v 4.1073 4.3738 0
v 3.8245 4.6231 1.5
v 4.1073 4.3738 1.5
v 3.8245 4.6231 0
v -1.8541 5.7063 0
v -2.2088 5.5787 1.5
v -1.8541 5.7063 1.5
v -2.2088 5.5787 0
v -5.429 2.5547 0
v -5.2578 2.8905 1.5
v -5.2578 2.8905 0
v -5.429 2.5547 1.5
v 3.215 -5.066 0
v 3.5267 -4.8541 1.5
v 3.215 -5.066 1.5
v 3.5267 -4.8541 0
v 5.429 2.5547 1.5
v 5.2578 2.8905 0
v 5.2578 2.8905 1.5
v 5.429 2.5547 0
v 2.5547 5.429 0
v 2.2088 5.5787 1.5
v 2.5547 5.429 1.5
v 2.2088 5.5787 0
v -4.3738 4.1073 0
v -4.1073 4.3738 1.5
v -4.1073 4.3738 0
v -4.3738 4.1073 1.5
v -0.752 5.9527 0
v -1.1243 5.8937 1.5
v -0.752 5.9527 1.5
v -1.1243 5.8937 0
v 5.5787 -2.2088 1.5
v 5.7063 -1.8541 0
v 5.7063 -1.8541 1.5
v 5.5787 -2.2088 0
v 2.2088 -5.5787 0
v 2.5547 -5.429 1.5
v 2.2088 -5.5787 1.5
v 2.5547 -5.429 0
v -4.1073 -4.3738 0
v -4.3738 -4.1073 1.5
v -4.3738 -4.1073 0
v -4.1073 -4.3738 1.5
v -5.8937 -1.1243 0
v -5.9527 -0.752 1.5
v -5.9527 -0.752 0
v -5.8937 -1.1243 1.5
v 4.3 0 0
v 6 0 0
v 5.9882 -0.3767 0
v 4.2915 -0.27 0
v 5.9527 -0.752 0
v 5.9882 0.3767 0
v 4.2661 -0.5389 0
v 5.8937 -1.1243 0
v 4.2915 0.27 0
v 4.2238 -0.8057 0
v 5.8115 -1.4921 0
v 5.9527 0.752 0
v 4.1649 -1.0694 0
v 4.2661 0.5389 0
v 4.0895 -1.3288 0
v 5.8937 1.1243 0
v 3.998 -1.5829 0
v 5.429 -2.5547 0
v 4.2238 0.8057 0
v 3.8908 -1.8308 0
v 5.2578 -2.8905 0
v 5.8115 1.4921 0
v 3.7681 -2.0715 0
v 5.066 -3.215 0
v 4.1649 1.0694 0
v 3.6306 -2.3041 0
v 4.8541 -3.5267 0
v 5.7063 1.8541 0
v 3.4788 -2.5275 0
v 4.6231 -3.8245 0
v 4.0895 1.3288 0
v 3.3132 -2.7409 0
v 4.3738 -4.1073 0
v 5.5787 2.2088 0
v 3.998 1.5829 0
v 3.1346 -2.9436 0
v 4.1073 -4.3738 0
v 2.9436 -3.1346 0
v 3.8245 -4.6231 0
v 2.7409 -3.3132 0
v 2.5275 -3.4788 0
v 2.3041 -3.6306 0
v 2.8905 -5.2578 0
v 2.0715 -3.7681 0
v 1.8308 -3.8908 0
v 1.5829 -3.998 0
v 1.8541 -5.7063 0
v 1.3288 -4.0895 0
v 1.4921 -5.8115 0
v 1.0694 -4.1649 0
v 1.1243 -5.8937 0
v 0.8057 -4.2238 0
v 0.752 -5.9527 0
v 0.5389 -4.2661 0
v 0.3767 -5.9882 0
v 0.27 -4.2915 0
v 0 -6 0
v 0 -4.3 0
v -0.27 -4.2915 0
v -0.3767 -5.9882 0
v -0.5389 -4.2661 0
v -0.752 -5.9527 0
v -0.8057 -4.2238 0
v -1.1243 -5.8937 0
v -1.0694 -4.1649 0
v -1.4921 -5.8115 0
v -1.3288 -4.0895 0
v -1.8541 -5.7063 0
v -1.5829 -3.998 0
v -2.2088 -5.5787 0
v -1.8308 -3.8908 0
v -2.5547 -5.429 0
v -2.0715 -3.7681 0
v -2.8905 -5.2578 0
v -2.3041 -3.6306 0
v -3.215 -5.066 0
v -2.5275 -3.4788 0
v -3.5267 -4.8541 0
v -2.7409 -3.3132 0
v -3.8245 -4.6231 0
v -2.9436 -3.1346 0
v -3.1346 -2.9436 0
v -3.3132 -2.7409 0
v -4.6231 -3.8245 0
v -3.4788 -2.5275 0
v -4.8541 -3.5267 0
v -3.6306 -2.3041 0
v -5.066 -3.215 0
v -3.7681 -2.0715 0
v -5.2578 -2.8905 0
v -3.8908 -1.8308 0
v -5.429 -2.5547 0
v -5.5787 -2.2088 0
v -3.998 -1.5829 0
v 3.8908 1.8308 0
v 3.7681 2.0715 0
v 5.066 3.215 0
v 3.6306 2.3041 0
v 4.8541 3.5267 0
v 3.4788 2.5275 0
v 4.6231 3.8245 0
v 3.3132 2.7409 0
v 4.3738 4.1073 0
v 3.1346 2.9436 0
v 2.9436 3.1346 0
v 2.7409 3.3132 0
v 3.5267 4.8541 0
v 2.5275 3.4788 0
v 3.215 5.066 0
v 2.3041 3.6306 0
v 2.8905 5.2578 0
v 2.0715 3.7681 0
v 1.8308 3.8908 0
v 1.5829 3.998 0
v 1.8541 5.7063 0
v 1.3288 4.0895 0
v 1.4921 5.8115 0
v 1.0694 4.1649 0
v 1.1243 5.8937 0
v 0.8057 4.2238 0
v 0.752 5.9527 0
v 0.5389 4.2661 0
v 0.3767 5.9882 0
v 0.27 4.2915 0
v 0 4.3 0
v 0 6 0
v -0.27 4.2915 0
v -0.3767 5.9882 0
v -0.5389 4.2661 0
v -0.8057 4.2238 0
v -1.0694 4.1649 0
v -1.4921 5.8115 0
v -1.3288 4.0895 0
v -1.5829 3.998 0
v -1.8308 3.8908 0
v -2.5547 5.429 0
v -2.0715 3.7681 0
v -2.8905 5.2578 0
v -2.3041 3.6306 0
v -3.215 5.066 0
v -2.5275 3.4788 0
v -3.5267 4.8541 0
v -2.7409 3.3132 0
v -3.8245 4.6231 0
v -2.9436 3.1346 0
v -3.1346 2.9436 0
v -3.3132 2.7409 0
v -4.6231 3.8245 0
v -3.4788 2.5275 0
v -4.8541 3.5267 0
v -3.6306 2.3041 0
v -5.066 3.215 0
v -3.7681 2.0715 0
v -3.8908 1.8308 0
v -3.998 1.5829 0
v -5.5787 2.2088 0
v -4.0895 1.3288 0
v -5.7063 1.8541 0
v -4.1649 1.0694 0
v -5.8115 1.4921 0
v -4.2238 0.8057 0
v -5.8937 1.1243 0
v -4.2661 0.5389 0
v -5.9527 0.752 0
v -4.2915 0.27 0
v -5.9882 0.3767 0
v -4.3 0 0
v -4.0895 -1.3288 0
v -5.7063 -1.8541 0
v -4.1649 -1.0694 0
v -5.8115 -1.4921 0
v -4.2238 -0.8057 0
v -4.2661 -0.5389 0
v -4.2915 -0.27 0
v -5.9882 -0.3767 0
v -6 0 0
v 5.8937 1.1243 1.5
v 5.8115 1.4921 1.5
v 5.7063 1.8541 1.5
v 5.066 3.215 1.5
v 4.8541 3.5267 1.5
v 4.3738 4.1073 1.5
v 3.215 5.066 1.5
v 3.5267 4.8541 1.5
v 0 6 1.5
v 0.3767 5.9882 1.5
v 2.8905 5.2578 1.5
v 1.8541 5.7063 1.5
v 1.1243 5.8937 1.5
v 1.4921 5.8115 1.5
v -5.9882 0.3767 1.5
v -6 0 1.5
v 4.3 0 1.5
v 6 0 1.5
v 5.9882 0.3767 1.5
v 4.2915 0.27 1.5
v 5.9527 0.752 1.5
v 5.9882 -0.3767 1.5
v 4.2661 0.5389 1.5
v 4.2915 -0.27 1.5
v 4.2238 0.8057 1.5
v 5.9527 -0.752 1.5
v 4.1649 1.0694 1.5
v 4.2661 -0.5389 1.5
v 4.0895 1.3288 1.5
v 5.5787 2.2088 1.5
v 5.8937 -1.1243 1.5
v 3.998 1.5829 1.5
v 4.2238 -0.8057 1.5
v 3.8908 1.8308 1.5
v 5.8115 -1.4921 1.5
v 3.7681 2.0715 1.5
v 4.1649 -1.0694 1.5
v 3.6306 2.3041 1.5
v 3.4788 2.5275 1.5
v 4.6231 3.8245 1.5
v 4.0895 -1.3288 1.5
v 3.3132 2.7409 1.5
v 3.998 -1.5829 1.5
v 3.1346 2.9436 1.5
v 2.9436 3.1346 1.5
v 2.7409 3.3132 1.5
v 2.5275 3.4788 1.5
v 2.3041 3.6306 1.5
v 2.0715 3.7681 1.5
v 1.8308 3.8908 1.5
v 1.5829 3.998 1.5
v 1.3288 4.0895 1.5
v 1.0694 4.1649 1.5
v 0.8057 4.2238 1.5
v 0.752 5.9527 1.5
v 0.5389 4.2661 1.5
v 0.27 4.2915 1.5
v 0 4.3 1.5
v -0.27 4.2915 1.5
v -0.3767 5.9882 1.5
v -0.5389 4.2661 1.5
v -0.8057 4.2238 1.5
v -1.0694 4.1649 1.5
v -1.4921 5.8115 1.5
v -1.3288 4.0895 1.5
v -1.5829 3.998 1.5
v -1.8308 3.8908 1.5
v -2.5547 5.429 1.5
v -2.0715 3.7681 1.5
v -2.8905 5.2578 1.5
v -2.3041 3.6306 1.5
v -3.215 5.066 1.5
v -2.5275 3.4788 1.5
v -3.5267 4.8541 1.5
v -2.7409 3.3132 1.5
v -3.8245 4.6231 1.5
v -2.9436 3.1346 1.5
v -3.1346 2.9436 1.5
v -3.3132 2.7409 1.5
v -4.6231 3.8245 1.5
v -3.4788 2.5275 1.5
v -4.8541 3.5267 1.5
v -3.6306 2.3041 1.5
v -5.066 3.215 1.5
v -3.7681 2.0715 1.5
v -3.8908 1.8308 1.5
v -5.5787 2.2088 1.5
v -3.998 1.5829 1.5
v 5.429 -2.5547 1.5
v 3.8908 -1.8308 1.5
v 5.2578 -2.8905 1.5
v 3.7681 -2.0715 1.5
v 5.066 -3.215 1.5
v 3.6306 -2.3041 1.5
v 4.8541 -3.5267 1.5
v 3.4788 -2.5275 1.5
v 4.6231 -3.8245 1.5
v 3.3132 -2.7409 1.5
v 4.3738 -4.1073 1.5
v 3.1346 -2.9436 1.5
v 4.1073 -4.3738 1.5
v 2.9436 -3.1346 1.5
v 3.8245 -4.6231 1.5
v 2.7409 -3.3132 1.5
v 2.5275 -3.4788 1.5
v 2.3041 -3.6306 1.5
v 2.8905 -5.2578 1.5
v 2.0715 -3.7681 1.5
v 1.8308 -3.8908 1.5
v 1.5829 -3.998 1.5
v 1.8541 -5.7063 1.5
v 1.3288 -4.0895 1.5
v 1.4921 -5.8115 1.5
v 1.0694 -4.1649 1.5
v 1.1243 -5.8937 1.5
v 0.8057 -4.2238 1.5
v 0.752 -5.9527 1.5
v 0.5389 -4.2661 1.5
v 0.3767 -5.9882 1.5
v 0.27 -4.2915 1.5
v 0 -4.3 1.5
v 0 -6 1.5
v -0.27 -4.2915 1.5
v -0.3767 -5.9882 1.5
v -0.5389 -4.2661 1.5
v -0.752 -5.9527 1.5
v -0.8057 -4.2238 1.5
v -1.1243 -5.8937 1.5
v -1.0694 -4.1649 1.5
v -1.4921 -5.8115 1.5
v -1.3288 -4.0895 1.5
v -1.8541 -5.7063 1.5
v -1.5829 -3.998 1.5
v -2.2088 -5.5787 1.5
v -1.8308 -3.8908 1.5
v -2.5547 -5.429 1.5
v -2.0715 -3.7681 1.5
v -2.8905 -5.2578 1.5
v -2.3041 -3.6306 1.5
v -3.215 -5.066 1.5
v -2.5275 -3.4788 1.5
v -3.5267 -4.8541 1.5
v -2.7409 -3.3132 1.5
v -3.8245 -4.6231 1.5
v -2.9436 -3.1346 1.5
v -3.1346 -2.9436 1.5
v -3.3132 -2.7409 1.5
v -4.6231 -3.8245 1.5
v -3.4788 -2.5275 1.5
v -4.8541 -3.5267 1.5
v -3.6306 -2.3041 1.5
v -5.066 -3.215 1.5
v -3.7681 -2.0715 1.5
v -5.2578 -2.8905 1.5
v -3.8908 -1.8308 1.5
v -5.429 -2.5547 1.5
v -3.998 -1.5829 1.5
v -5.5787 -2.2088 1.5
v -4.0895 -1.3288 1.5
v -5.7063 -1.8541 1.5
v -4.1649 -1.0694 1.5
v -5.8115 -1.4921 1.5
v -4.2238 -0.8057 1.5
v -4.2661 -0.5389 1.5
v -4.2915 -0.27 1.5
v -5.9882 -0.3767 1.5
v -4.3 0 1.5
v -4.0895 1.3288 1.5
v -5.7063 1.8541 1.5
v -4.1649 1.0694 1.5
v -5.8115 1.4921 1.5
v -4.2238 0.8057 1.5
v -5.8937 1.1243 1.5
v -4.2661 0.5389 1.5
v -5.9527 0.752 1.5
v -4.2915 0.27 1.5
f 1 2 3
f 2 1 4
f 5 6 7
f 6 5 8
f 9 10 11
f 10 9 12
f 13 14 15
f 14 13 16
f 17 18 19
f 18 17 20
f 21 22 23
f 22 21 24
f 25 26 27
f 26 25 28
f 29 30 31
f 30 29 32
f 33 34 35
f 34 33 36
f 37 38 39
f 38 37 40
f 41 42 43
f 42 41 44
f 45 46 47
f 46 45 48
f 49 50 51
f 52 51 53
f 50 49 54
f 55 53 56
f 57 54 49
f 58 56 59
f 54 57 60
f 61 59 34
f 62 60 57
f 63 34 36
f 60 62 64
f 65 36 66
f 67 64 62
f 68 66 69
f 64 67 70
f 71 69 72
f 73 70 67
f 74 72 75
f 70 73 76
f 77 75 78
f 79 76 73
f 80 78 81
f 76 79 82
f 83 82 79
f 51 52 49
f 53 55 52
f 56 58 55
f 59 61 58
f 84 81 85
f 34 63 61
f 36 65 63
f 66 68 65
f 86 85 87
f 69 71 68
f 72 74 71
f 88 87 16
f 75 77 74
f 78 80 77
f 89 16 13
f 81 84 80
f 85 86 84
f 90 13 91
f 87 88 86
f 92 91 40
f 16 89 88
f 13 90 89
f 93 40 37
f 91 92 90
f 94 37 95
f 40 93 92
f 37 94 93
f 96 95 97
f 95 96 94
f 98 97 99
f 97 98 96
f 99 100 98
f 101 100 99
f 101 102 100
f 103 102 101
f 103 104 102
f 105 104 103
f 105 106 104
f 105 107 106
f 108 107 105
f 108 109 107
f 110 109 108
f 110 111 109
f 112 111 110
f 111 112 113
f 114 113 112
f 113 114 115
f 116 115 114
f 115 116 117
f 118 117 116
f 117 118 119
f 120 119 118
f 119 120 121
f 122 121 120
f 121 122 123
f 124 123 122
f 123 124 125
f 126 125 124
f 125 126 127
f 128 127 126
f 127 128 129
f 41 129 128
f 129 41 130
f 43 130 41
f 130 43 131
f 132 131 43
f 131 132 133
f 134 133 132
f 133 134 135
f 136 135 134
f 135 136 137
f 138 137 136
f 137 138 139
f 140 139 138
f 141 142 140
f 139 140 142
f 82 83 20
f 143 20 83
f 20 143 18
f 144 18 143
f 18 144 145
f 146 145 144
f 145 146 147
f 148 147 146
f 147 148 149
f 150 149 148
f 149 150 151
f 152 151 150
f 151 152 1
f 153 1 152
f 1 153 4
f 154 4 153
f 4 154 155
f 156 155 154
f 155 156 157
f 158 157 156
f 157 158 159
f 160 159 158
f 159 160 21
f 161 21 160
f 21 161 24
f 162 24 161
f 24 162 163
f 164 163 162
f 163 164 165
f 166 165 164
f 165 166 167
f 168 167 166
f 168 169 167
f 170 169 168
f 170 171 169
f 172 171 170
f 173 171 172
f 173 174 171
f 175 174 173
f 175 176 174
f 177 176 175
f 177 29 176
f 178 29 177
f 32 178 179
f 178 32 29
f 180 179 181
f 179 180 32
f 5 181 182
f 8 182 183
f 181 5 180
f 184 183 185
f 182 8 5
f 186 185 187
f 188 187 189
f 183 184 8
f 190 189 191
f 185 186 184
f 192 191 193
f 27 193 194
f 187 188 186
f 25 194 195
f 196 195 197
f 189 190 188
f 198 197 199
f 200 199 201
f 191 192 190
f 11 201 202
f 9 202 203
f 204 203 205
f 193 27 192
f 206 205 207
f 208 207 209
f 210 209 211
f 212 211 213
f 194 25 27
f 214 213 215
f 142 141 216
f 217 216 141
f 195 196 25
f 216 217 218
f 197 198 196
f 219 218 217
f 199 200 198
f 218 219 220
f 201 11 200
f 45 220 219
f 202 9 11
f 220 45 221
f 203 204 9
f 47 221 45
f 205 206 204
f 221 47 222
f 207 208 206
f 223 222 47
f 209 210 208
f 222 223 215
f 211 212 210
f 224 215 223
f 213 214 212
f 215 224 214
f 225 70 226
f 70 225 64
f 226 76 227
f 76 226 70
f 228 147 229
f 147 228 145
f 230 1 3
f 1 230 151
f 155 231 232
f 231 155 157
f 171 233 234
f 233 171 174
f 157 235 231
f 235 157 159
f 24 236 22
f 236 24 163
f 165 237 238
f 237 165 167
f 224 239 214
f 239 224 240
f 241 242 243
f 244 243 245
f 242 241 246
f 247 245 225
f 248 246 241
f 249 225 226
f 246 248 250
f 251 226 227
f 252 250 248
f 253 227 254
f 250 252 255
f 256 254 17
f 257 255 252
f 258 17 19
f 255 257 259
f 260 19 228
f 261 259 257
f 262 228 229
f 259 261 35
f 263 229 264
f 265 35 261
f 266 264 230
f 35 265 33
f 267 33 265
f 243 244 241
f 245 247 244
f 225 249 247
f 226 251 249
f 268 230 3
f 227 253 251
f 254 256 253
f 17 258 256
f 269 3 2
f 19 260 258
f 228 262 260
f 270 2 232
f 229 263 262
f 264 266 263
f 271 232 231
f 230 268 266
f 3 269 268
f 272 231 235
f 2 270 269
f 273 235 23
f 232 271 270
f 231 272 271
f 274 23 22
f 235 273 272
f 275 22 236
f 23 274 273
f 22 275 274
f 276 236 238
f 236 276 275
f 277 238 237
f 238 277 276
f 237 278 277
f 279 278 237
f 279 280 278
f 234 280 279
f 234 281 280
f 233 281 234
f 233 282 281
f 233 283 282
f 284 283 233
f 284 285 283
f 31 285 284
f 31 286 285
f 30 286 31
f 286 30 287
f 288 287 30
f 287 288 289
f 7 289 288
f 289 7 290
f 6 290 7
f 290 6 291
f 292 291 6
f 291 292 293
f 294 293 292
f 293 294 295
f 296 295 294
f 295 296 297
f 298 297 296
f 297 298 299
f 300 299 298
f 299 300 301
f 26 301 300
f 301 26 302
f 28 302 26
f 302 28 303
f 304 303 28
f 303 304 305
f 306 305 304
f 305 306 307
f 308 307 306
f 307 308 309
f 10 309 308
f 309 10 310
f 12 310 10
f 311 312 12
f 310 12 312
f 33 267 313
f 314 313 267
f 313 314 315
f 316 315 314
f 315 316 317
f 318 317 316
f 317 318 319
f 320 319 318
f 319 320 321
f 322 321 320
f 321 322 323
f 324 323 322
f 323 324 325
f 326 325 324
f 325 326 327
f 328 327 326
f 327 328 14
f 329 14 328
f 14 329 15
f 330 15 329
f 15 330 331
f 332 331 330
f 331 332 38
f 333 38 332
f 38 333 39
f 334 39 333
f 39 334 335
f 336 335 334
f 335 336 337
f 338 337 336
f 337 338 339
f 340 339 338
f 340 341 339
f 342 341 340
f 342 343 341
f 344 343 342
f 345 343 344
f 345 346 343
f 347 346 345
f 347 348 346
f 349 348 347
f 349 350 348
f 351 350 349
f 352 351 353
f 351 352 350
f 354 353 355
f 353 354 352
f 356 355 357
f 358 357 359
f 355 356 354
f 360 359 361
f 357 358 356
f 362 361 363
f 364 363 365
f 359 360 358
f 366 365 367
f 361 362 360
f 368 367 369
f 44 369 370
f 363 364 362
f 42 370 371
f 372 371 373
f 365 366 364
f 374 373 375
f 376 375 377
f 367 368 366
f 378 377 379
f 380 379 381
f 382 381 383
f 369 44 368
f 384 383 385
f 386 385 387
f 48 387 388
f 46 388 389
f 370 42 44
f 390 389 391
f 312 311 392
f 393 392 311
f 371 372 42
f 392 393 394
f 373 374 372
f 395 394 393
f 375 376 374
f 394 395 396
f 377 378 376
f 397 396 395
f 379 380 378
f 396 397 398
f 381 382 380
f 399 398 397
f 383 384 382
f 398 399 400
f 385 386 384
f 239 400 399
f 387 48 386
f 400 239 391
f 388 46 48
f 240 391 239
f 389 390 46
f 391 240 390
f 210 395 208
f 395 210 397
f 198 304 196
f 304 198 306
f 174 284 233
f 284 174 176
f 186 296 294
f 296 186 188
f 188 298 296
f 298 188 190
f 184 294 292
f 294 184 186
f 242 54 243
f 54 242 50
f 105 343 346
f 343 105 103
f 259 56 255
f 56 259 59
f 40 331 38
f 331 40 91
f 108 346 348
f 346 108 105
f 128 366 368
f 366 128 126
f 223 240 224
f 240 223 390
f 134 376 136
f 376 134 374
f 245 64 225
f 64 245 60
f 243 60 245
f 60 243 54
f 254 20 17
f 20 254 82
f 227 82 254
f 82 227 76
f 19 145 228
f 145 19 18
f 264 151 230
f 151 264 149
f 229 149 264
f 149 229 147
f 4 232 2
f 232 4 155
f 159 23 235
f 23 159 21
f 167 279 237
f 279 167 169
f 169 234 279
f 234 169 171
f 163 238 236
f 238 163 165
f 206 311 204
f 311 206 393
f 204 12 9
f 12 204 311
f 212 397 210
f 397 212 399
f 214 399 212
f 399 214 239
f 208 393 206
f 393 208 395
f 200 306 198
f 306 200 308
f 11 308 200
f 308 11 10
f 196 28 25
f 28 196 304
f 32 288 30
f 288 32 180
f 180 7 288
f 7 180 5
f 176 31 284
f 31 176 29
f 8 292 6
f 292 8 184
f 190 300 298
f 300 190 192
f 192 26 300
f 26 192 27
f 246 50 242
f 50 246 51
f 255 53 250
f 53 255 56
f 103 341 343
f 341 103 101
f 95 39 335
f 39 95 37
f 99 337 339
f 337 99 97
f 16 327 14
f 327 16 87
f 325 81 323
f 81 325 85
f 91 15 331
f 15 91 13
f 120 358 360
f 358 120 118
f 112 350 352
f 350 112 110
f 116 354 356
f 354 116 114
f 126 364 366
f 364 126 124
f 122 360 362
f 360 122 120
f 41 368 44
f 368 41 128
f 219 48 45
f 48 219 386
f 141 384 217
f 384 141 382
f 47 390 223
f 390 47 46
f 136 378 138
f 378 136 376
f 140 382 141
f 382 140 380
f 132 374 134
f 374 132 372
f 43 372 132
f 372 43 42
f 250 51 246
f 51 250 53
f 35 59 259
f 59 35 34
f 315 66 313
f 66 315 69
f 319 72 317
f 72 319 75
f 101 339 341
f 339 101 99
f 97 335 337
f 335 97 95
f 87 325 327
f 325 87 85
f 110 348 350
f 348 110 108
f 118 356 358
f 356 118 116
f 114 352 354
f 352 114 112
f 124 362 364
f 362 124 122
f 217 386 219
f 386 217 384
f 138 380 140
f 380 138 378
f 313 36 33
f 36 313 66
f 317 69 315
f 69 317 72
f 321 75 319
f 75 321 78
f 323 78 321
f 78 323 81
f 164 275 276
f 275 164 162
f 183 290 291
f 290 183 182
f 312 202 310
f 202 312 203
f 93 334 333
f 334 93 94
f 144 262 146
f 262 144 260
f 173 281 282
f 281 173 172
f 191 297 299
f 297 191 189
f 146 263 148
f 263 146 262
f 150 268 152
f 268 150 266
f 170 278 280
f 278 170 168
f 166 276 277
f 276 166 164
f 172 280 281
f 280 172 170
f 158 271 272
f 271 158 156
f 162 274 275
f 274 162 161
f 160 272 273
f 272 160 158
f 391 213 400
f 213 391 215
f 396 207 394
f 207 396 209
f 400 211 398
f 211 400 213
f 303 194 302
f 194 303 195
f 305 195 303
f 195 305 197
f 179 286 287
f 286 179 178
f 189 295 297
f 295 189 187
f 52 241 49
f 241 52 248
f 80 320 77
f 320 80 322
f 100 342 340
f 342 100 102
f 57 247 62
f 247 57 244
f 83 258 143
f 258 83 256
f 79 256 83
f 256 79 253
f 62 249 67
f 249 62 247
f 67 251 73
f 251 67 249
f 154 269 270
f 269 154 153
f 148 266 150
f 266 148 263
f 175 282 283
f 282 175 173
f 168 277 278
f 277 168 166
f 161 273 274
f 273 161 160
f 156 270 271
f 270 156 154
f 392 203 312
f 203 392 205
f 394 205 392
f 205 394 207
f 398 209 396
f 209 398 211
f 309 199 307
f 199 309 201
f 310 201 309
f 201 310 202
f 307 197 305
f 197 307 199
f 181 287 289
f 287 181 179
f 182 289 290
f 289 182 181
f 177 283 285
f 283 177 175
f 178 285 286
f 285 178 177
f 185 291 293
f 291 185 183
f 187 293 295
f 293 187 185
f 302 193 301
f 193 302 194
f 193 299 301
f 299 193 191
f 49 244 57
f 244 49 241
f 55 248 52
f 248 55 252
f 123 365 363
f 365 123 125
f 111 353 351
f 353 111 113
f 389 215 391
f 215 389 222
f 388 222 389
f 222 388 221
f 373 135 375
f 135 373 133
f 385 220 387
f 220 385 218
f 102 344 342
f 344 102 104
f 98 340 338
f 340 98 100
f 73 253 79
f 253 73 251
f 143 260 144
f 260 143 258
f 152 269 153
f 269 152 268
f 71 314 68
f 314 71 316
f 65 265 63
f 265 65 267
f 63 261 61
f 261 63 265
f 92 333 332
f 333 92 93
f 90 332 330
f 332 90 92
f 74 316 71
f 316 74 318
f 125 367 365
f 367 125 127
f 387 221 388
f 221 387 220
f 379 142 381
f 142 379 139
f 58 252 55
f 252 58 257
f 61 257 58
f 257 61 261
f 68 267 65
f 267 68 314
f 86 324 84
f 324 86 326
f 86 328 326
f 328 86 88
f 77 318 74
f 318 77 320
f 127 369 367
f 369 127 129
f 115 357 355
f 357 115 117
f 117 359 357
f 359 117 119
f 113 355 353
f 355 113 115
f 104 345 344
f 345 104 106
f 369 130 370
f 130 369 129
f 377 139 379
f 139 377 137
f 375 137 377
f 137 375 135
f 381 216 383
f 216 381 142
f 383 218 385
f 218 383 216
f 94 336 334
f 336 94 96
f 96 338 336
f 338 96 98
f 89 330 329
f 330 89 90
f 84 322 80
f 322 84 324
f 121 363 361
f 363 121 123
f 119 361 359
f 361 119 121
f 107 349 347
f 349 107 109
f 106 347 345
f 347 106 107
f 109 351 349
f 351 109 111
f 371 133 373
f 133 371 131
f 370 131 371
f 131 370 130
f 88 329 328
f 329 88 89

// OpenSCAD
$fn=100;
difference(){
    cylinder(r=6, h=1.5);
    cylinder(r=4.3, h=5);
}
